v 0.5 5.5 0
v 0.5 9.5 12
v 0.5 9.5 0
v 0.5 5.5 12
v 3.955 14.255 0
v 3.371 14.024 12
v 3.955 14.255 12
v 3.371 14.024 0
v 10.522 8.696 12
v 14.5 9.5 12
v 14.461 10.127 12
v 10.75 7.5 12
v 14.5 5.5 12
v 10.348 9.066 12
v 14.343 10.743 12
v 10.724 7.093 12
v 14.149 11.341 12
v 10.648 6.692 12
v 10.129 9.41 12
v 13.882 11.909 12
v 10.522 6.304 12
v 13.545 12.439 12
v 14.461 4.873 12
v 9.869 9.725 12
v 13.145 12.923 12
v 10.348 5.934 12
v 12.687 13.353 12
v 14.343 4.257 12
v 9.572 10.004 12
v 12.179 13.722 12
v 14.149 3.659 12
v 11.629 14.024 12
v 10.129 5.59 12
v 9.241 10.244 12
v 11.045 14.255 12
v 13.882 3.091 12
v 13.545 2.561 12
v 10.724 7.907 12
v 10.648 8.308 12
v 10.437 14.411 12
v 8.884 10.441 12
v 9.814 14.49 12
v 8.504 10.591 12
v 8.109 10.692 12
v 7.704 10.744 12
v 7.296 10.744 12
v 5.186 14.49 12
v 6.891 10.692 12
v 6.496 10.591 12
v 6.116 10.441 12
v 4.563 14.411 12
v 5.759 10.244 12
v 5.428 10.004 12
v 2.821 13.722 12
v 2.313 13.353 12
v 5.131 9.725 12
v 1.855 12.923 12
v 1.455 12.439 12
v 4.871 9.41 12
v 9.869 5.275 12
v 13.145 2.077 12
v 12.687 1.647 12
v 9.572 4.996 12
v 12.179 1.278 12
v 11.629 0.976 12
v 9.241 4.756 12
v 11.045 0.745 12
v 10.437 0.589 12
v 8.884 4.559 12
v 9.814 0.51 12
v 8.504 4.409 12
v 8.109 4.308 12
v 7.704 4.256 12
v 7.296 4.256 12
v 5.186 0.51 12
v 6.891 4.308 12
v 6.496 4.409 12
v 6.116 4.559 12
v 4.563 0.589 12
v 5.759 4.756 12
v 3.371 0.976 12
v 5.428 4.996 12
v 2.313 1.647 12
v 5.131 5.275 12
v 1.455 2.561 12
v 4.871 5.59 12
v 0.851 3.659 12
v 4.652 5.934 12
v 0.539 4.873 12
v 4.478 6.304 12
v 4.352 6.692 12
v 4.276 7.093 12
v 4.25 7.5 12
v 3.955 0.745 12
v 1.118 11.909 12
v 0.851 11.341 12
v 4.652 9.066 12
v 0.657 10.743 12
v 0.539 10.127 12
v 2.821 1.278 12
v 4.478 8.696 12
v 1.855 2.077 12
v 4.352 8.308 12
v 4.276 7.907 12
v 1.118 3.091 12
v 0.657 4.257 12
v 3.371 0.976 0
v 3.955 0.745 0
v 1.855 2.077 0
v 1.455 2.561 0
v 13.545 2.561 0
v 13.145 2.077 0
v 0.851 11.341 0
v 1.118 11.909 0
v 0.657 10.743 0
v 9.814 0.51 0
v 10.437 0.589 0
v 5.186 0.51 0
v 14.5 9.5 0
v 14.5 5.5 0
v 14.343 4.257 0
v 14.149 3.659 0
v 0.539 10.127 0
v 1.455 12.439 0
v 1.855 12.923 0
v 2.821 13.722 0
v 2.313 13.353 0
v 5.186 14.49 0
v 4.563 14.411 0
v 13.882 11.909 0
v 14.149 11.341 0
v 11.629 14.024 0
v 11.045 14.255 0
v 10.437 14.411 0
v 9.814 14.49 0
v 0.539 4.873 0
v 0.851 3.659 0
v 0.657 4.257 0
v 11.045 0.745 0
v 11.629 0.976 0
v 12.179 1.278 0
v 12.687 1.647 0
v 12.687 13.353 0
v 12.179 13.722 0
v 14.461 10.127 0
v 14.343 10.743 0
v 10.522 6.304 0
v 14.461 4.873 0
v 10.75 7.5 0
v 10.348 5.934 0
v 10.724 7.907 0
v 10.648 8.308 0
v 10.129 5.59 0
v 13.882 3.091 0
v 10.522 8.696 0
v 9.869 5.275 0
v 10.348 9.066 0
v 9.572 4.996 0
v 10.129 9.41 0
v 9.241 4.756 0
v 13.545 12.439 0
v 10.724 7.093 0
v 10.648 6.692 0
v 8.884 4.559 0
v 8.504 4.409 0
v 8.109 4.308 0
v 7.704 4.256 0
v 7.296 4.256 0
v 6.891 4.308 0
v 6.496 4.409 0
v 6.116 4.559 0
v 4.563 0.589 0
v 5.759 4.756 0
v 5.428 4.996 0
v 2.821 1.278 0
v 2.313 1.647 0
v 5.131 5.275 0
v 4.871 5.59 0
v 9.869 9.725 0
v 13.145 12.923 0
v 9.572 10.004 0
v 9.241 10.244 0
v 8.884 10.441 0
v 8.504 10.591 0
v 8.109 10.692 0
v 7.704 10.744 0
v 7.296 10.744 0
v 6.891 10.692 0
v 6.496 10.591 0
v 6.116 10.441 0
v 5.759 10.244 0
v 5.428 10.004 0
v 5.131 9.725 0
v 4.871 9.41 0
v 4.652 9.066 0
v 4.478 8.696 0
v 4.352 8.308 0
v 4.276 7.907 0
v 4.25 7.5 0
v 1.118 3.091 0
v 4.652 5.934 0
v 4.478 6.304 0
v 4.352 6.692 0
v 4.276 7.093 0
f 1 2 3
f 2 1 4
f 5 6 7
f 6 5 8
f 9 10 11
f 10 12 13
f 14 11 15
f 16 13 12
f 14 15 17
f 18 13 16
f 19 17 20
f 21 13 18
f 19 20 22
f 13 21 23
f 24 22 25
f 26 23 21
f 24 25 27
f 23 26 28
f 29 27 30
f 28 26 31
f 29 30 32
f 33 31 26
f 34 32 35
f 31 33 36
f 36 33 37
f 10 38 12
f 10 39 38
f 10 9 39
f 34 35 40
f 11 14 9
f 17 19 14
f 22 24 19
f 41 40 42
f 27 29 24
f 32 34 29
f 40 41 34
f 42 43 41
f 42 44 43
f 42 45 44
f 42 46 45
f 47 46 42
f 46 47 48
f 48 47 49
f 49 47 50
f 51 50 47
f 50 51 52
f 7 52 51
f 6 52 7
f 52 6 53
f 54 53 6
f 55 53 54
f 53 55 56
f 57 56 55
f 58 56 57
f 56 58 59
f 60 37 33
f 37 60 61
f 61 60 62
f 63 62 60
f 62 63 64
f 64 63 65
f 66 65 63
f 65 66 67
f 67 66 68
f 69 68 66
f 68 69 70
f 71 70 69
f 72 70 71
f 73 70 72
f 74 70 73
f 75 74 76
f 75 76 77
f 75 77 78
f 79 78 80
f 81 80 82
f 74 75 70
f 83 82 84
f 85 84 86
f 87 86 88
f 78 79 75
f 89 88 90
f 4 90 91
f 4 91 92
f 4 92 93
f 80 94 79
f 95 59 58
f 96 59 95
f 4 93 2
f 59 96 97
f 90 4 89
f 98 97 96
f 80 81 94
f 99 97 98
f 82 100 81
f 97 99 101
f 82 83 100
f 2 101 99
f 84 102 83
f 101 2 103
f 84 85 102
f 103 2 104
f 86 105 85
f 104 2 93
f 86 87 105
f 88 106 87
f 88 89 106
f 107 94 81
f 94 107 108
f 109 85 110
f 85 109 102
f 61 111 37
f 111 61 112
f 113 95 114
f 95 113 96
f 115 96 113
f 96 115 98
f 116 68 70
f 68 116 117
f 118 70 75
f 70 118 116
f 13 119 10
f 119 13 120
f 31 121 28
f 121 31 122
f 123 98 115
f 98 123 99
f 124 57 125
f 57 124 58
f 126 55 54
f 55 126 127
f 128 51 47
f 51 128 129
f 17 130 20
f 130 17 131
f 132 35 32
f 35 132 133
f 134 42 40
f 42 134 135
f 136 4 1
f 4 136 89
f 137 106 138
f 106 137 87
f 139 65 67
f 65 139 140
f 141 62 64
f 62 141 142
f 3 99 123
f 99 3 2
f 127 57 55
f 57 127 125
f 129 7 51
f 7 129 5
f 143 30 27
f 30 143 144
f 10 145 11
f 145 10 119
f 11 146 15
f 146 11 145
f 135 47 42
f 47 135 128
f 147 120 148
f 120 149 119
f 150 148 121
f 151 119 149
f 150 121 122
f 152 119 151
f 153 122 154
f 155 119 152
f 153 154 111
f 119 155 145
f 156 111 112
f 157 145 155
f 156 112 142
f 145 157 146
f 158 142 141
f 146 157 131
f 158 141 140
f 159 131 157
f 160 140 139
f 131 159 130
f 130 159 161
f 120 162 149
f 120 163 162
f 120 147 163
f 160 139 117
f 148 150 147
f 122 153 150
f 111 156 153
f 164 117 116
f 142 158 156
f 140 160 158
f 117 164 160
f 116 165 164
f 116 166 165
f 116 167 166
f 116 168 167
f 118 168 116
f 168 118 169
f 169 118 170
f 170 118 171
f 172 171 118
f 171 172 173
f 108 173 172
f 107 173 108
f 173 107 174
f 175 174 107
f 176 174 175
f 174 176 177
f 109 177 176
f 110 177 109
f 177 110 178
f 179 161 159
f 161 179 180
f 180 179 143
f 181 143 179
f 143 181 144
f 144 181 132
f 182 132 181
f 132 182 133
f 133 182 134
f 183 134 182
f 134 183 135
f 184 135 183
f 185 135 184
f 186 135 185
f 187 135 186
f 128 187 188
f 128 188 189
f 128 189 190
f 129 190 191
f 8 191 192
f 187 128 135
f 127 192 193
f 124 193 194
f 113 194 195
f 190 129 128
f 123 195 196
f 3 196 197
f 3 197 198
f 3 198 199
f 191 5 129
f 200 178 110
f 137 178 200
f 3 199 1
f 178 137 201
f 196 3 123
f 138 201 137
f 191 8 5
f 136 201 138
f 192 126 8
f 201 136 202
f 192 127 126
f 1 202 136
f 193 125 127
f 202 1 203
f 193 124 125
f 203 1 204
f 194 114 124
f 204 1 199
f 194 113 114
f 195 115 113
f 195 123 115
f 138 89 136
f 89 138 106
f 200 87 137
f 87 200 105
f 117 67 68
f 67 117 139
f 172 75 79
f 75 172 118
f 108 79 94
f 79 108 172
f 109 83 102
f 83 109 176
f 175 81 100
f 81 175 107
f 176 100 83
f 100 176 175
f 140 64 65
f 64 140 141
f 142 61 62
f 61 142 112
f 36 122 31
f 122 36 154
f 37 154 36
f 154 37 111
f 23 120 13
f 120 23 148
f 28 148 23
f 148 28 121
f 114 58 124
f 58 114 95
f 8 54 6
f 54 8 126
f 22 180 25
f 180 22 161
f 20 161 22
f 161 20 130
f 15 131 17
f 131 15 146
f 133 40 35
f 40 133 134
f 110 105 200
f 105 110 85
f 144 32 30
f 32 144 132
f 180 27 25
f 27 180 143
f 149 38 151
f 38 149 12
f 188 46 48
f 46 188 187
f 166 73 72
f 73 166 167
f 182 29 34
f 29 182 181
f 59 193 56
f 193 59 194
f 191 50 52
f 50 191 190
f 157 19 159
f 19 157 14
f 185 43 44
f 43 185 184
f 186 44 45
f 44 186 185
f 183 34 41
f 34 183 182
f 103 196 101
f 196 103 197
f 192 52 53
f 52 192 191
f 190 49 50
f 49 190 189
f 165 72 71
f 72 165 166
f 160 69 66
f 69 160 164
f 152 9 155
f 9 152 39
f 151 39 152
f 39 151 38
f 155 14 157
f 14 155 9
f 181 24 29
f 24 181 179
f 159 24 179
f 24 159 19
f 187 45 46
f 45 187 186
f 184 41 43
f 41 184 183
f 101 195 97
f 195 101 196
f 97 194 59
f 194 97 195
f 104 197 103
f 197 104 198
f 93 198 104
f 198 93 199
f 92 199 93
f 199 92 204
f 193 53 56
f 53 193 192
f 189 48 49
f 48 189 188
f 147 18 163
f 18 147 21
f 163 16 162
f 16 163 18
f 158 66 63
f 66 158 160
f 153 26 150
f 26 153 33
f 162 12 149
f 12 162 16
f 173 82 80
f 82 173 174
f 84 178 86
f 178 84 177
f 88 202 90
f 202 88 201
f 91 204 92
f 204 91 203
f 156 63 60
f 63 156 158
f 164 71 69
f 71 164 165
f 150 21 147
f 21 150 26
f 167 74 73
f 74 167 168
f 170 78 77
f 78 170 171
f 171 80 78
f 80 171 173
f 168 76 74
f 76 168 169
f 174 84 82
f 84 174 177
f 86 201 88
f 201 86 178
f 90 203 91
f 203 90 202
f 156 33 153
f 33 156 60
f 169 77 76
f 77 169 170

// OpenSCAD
// Generated by SolidPython 1.1.3 on 2023-01-09 15:31:34
$fn = 50;


difference() {
	union() {
		translate(v = [7.5000000000, 7.5000000000, 0]) {
			rotate(a = [0, 0, 0]) {
				hull() {
					translate(v = [-2.0000000000, 2.0000000000, 0]) {
						rotate(a = [0, 0, 0]) {
							translate(v = [0, 0, 0]) {
								rotate(a = [0, 0, 0]) {
									cylinder(h = 12, r = 5);
								}
							}
						}
					}
					translate(v = [2.0000000000, 2.0000000000, 0]) {
						rotate(a = [0, 0, 0]) {
							translate(v = [0, 0, 0]) {
								rotate(a = [0, 0, 0]) {
									cylinder(h = 12, r = 5);
								}
							}
						}
					}
					translate(v = [-2.0000000000, -2.0000000000, 0]) {
						rotate(a = [0, 0, 0]) {
							translate(v = [0, 0, 0]) {
								rotate(a = [0, 0, 0]) {
									cylinder(h = 12, r = 5);
								}
							}
						}
					}
					translate(v = [2.0000000000, -2.0000000000, 0]) {
						rotate(a = [0, 0, 0]) {
							translate(v = [0, 0, 0]) {
								rotate(a = [0, 0, 0]) {
									cylinder(h = 12, r = 5);
								}
							}
						}
					}
				}
			}
		}
	}
	union() {
		translate(v = [7.5000000000, 7.5000000000, 0]) {
			rotate(a = [0, 0, 0]) {
				translate(v = [0, 0, -50]) {
					rotate(a = [0, 0, 0]) {
						cylinder(h = 100, r = 3.2500000000);
					}
				}
			}
		}
	}
}
/***********************************************
*********      SolidPython code:      **********
************************************************
 
from solid import *
import os
import subprocess

import oomB

import opsc_library_gen

mode = "laser"
#mode = "3d_print"

defined_objects = {}

radius_dict = {}
countersunk_dict = {}


def set_mode(m):
    global mode
    mode = m
    radius_dict['M6'] = 6.5/2
    radius_dict['M3'] = 3.3/2
    if mode == "laser":
        radius_dict['M6'] = 6/2
        radius_dict['M3'] = 3/2

    countersunk_dict['M3'] = {}
    countersunk_dict['M3']['little_rad'] = radius_dict['M3']
    countersunk_dict['M3']['big_rad'] = (5.5+0.6)/2
    if mode == "laser":
        countersunk_dict['M3']['big_rad'] = (4.75+0.6)/2
        countersunk_dict['M3']['little_rad'] = (4.75+0.6)/2

    countersunk_dict['M3']['height'] = 1.7


def opsc_make_object(filename, objects, save_type="none",resolution=50, layers = 1, tilediff = 200, mode="laser"):
    set_mode(mode)
    save_type = save_type.lower()
    os.makedirs(os.path.dirname(filename), exist_ok=True)
    final_object = opsc_get_object(objects)
    # Save the final object to the specified filename    
    scad_render_to_file(final_object, filename, file_header='$fn = %s;' % resolution, include_orig_code=True)
    if mode == "laser":
        filename_laser = filename.replace(".scad","-flat.scad")
        scad_render_to_file(getLaser(final_object, layers=layers, tilediff=tilediff), filename_laser, file_header='$fn = %s;' % resolution, include_orig_code=True)
        if save_type == "all":
            saveToAll(filename_laser)
        elif save_type == "dxf":
            saveToDxf(filename_laser)
    if save_type == "all":
        saveToAll(filename)
    elif save_type == "dxf":
        saveToDxf(filename)


def opsc_get_object(objects):
    # Create the solidpython objects
    positive_objects = [get_opsc_item(obj) for obj in objects if obj['type'] == 'positive']
    negative_objects = [get_opsc_item(obj) for obj in objects if obj['type'] == 'negative']
    # Union the positive objects
    positive_object = union()(*positive_objects)
    # Union the negative objects
    negative_object = union()(*negative_objects)
    # Create the final object by subtracting the negative objects from the positive objects
    return difference()(positive_object, negative_object)

def get_opsc_item(params):
    # A dictionary to map radius string values to numerical values
    #radius_dict = {'small': 5, 'medium': 10, 'large': 15}
    # An array of function names for basic shapes
    basic_shapes = ['cube', 'sphere', 'cylinder']
    
    # An array of function names for other shapes
    other_shapes = ['hole', 'slot', 'rounded_rectangle', 'countersunk']
    


    # Convert radius to r if present, and remove radius from the params dictionary
    if 'radius' in params:
        if isinstance(params['radius'], str):
            # Use the radius_dict to map the radius string value to a numerical value
            params['r'] = radius_dict[params['radius']]
        else:
            params['r'] = params['radius']
        del params['radius']
    

    # Check if the object type is a basic shape
    if params['shape'] in basic_shapes:
        # Remove shape and unexpected dictionary values
        allowed_keys = {'size', 'r', 'r1', 'r2', 'd', 'h', 'rw', 'rh', 'dw', 'dh'}
        shape_params = {k: v for k, v in params.items() if k in allowed_keys}

        # Call the corresponding function for the shape parameter, using ** notation to pass the shape_params dictionary as keyword arguments
        return get_opsc_transform(params,globals()[params['shape']](**shape_params))
    
    # If the object type is not a basic shape, check if it's a defined object or one of the other shapes
    elif params['shape'] in other_shapes:
        # Call the corresponding function for the shape parameter, passing the params dictionary as an argument
        p2 = copy.deepcopy(params)
        p2["pos"] = [0,0,0]
        return get_opsc_transform(params,globals()[params['shape']](p2))
    
    # If the object is not a basic shape or a defined object, try to import it from a .scad file
    else:
        obj = defined_objects[params['shape']]
        return get_opsc_transform(params,obj)

def get_opsc_transform(params, solid_obj):
    # Rotate the object based on the 'rot' field in the params dictionary, or the 'rotX', 'rotY', and 'rotZ' fields if 'rot' is not present
    rot = params.get('rot', [])
    if rot:
        rotX, rotY, rotZ = rot
    else:
        rotX = params.get('rotX', 0)
        rotY = params.get('rotY', 0)
        rotZ = params.get('rotZ', 0)
    solid_obj = rotate([rotX, rotY, rotZ])(solid_obj)

    # Translate the object based on the 'pos' field in the params dictionary, or the 'x', 'y', and 'z' fields if 'pos' is not present
    pos = params.get('pos', [])
    if pos:
        x, y, z = pos
    else:
        x = params.get('x', 0)
        y = params.get('y', 0)
        z = params.get('z', 0)
    solid_obj = translate([x, y, z])(solid_obj)
    return solid_obj


import random

def opsc_easy_array(type, shape, repeats, pos_start, shift_arr, **kwargs):
    for i in range(0,3):
        repeats.append(1)
        pos_start.append(0)
        shift_arr.append(0)
    return_objects = []

    for x in range(0,repeats[0]):
        for y in range(0,repeats[1]):
            for z in range(0,repeats[2]):
                return_objects.append(opsc_easy(type, shape, pos=[pos_start[0]+x*shift_arr[0],pos_start[1]+y*shift_arr[1],pos_start[2]+z*shift_arr[2]], **kwargs))
    return return_objects                



def opsc_easy(type, shape, **kwargs):
    obj = {
        'type': type,
        'shape': shape
    }
    for param in ['size', 'r', 'r1', 'r2', 'd', 'h', 'rw', 'rh', 'dw', 'dh', 'pos', 'x', 'y', 'z', 'rot', 'rotX', 'rotY', 'rotZ', "w"]:
        if param in kwargs:
            obj[param] = kwargs[param]
    return obj

def hole(params):
    p2 = copy.deepcopy(params)  
    # Check if the radius is a string and replace it with the corresponding value from the dictionary
    if isinstance(p2['r'], str):
        p2['r'] = radius_dict[p2['r']]
    
    # Set the height to 100 if not specified
    if 'h' not in p2:
        p2['h'] = 100
        p2["pos"] = [0,0,-50]
    p2["center"] = True
    # Create the cylinder object
    p2["shape"] = "cylinder"
    p2["type"] = "positive"

    return get_opsc_item(p2)

import copy

def countersunk(params):
    p2 = copy.deepcopy(params)
    counter_rad = p2['r']
    p2['r'] = radius_dict[p2['r']]
    hp = copy.deepcopy(p2)
    hp["type"] = "positive"
    hp["shape"] = "hole"
    del hp["rot"]
    hol = get_opsc_item(hp)
    
    cp = copy.deepcopy(p2)
    cp["h"] = countersunk_dict[counter_rad]["height"]
    cp["r2"] = countersunk_dict[counter_rad]["little_rad"]
    cp["r1"] = countersunk_dict[counter_rad]["big_rad"]
    del cp["r"]
    del cp["rot"]
    cp["type"] = "positive"
    cp["shape"] = "cylinder"
    cp["pos"] = [0,0,0]

    top = get_opsc_item(cp)
    return union()(hol,top)



def slot(params):  
    p2 = copy.deepcopy(params) 
    if isinstance(p2['r'], str):
        p2['r'] = radius_dict[p2['r']]
    p2["type"] = "positive"
    p2["shape"] = "hole"
    del p2["rot"]
    p2["pos"] = [0,0,0]
    left = copy.deepcopy(p2)
    right = copy.deepcopy(p2)
    left["pos"][0] = p2["w"] / 2 - p2["r"] 
    
    right["pos"][0] = -p2["w"] / 2 + p2["r"] 
    pass
    leftObj = get_opsc_item(left)
    rightObj = get_opsc_item(right)
    return hull()(leftObj, rightObj)

def rounded_rectangle(params):   
    p2 = copy.deepcopy(params) 
    p2["h"] = p2["size"][2]
    p2["pos"] = p2.get("pos", [0, 0, 0]) 
    p2["type"] = "positive"
    p2["shape"] = "hole"
    p2["pos"] = [0,0,0]
    
    if 'rot' in p2:
        del p2["rot"]   
    if 'r' not in p2:
        p2["r"] = 5 
    tl = copy.deepcopy(p2)
    tr = copy.deepcopy(p2)
    bl = copy.deepcopy(p2)
    br = copy.deepcopy(p2)
    tl["pos"][0] = -(p2["size"][0] - p2["r"]*2)/2
    tl["pos"][1] = (p2["size"][1] - p2["r"]*2)/2
    tr["pos"][0] = (p2["size"][0] - p2["r"]*2)/2
    tr["pos"][1] = (p2["size"][1] - p2["r"]*2)/2
    bl["pos"][0] = -(p2["size"][0] - p2["r"]*2)/2
    bl["pos"][1] = -(p2["size"][1] - p2["r"]*2)/2
    br["pos"][0] = (p2["size"][0] - p2["r"]*2)/2
    br["pos"][1] = -(p2["size"][1] - p2["r"]*2)/2
    del tl["size"]
    del tr["size"]
    del bl["size"]
    del br["size"]
    tlo = get_opsc_item(tl)
    tro = get_opsc_item(tr)
    blo = get_opsc_item(bl)
    bro = get_opsc_item(br)    
    return hull()(tlo, tro, blo, bro)



def import_scad_object(filename):
    # Import the .scad file and convert it to a solidpython object
    #filename = "parts"
    obj = import_scad(filename)
    return obj.main()
    


import os
import solid as solidpython

# A dictionary to store the defined objects


def load_scad_objects():
    opsc_library_gen.gen_library(defined_objects)

import random

def test(num_objects):
    objects = []
    for i in range(num_objects):
        # Choose a random shape
        #shape = random.choice(['cube', 'sphere', 'cylinder', 'hole', 'slot', "rounded_rectangle"])
        shape = random.choice(["rounded_rectangle"])

        # Choose a random type
        type = random.choice(['positive', 'negative'])
        
        # Create an empty object dictionary
        obj = {'shape': shape, 'type': type}
        
        # Set shape-specific parameters
        if obj['shape'] in ['cube']:
            obj['size'] =  [random.uniform(5, 15), random.uniform(5, 15), random.uniform(5, 15)]
        if obj['shape'] in ['rounded_rectangle']:
            obj['size'] =  [random.uniform(5, 15), random.uniform(5, 15), random.uniform(5, 15)]
            obj['r'] = random.uniform(0.5, 5)
        elif obj['shape'] == 'sphere':
            obj['r'] = random.uniform(5, 15)
        elif obj['shape'] in ['cylinder', 'hole']:
            obj['r'] = random.uniform(0.5, 5)
            obj['h'] = random.uniform(5, 15)
        elif obj['shape'] == 'slot':
            obj['r'] = random.uniform(0.5, 5)
            obj['h'] = random.uniform(5, 15)
            obj['w'] = random.uniform(5, 15)
        
        # Set a random position and rotation
        obj['pos'] = [random.uniform(-20, 20), random.uniform(-20, 20), random.uniform(-20, 20)]
        obj['rot'] = [random.uniform(-180, 180), random.uniform(-180, 180), random.uniform(-180, 180)]
        
        # Add the object to the list
        objects.append(obj)
    return objects

####### old file saving
def saveToAll(fileIn):
    saveToDxf(fileIn)
    saveToPng(fileIn)
    saveToStl(fileIn)
    saveToSvg(fileIn)

def saveToDxf(fileIn, fileOut="", copy_to_laser=True):
    if fileOut == "":
        fileOut = fileIn.replace(".scad",".dxf")
    saveToFile(fileIn, fileOut)


    
def saveToPng(fileIn, fileOut="",extra="--render"):
    if fileOut == "":
        fileOut = fileIn.replace(".scad",".png")
    saveToFile(fileIn, fileOut)

def saveToStl(fileIn, fileOut=""):
    if fileOut == "":
        fileOut = fileIn.replace(".scad",".stl")
    saveToFile(fileIn, fileOut)
    
def saveToSvg(fileIn, fileOut=""):
    if fileOut == "":
        fileOut = fileIn.replace(".scad",".svg")
    saveToFile(fileIn, fileOut)

def saveToFile(fileIn, fileOut,extra=""):
    #extra = extra + " --colorscheme Tomorrow"

    launchStr = 'openscad -o "' + fileOut + '"' + extra + ' "' + fileIn + '"'
    if ".png" in fileOut:
        launchStr = launchStr + " --render"
    print("            saveToFile launch string: " + launchStr)
    subprocess.run(launchStr)
    x=0

def getLaser(final_object,start=1.5,layers=1,thickness=3,tilediff=200):
        rv= []

        for x in range(layers):
            rv.append(translate([0,x*tilediff,0])(
                    projection()(
                        intersection()(translate([-500,-500,start+x*thickness])(cube(size=[1000,1000,0.1])),
                            final_object
                        )
                    )
            )
            )
            
        return union()(rv)

set_mode("laser")
load_scad_objects() 
 
************************************************/
